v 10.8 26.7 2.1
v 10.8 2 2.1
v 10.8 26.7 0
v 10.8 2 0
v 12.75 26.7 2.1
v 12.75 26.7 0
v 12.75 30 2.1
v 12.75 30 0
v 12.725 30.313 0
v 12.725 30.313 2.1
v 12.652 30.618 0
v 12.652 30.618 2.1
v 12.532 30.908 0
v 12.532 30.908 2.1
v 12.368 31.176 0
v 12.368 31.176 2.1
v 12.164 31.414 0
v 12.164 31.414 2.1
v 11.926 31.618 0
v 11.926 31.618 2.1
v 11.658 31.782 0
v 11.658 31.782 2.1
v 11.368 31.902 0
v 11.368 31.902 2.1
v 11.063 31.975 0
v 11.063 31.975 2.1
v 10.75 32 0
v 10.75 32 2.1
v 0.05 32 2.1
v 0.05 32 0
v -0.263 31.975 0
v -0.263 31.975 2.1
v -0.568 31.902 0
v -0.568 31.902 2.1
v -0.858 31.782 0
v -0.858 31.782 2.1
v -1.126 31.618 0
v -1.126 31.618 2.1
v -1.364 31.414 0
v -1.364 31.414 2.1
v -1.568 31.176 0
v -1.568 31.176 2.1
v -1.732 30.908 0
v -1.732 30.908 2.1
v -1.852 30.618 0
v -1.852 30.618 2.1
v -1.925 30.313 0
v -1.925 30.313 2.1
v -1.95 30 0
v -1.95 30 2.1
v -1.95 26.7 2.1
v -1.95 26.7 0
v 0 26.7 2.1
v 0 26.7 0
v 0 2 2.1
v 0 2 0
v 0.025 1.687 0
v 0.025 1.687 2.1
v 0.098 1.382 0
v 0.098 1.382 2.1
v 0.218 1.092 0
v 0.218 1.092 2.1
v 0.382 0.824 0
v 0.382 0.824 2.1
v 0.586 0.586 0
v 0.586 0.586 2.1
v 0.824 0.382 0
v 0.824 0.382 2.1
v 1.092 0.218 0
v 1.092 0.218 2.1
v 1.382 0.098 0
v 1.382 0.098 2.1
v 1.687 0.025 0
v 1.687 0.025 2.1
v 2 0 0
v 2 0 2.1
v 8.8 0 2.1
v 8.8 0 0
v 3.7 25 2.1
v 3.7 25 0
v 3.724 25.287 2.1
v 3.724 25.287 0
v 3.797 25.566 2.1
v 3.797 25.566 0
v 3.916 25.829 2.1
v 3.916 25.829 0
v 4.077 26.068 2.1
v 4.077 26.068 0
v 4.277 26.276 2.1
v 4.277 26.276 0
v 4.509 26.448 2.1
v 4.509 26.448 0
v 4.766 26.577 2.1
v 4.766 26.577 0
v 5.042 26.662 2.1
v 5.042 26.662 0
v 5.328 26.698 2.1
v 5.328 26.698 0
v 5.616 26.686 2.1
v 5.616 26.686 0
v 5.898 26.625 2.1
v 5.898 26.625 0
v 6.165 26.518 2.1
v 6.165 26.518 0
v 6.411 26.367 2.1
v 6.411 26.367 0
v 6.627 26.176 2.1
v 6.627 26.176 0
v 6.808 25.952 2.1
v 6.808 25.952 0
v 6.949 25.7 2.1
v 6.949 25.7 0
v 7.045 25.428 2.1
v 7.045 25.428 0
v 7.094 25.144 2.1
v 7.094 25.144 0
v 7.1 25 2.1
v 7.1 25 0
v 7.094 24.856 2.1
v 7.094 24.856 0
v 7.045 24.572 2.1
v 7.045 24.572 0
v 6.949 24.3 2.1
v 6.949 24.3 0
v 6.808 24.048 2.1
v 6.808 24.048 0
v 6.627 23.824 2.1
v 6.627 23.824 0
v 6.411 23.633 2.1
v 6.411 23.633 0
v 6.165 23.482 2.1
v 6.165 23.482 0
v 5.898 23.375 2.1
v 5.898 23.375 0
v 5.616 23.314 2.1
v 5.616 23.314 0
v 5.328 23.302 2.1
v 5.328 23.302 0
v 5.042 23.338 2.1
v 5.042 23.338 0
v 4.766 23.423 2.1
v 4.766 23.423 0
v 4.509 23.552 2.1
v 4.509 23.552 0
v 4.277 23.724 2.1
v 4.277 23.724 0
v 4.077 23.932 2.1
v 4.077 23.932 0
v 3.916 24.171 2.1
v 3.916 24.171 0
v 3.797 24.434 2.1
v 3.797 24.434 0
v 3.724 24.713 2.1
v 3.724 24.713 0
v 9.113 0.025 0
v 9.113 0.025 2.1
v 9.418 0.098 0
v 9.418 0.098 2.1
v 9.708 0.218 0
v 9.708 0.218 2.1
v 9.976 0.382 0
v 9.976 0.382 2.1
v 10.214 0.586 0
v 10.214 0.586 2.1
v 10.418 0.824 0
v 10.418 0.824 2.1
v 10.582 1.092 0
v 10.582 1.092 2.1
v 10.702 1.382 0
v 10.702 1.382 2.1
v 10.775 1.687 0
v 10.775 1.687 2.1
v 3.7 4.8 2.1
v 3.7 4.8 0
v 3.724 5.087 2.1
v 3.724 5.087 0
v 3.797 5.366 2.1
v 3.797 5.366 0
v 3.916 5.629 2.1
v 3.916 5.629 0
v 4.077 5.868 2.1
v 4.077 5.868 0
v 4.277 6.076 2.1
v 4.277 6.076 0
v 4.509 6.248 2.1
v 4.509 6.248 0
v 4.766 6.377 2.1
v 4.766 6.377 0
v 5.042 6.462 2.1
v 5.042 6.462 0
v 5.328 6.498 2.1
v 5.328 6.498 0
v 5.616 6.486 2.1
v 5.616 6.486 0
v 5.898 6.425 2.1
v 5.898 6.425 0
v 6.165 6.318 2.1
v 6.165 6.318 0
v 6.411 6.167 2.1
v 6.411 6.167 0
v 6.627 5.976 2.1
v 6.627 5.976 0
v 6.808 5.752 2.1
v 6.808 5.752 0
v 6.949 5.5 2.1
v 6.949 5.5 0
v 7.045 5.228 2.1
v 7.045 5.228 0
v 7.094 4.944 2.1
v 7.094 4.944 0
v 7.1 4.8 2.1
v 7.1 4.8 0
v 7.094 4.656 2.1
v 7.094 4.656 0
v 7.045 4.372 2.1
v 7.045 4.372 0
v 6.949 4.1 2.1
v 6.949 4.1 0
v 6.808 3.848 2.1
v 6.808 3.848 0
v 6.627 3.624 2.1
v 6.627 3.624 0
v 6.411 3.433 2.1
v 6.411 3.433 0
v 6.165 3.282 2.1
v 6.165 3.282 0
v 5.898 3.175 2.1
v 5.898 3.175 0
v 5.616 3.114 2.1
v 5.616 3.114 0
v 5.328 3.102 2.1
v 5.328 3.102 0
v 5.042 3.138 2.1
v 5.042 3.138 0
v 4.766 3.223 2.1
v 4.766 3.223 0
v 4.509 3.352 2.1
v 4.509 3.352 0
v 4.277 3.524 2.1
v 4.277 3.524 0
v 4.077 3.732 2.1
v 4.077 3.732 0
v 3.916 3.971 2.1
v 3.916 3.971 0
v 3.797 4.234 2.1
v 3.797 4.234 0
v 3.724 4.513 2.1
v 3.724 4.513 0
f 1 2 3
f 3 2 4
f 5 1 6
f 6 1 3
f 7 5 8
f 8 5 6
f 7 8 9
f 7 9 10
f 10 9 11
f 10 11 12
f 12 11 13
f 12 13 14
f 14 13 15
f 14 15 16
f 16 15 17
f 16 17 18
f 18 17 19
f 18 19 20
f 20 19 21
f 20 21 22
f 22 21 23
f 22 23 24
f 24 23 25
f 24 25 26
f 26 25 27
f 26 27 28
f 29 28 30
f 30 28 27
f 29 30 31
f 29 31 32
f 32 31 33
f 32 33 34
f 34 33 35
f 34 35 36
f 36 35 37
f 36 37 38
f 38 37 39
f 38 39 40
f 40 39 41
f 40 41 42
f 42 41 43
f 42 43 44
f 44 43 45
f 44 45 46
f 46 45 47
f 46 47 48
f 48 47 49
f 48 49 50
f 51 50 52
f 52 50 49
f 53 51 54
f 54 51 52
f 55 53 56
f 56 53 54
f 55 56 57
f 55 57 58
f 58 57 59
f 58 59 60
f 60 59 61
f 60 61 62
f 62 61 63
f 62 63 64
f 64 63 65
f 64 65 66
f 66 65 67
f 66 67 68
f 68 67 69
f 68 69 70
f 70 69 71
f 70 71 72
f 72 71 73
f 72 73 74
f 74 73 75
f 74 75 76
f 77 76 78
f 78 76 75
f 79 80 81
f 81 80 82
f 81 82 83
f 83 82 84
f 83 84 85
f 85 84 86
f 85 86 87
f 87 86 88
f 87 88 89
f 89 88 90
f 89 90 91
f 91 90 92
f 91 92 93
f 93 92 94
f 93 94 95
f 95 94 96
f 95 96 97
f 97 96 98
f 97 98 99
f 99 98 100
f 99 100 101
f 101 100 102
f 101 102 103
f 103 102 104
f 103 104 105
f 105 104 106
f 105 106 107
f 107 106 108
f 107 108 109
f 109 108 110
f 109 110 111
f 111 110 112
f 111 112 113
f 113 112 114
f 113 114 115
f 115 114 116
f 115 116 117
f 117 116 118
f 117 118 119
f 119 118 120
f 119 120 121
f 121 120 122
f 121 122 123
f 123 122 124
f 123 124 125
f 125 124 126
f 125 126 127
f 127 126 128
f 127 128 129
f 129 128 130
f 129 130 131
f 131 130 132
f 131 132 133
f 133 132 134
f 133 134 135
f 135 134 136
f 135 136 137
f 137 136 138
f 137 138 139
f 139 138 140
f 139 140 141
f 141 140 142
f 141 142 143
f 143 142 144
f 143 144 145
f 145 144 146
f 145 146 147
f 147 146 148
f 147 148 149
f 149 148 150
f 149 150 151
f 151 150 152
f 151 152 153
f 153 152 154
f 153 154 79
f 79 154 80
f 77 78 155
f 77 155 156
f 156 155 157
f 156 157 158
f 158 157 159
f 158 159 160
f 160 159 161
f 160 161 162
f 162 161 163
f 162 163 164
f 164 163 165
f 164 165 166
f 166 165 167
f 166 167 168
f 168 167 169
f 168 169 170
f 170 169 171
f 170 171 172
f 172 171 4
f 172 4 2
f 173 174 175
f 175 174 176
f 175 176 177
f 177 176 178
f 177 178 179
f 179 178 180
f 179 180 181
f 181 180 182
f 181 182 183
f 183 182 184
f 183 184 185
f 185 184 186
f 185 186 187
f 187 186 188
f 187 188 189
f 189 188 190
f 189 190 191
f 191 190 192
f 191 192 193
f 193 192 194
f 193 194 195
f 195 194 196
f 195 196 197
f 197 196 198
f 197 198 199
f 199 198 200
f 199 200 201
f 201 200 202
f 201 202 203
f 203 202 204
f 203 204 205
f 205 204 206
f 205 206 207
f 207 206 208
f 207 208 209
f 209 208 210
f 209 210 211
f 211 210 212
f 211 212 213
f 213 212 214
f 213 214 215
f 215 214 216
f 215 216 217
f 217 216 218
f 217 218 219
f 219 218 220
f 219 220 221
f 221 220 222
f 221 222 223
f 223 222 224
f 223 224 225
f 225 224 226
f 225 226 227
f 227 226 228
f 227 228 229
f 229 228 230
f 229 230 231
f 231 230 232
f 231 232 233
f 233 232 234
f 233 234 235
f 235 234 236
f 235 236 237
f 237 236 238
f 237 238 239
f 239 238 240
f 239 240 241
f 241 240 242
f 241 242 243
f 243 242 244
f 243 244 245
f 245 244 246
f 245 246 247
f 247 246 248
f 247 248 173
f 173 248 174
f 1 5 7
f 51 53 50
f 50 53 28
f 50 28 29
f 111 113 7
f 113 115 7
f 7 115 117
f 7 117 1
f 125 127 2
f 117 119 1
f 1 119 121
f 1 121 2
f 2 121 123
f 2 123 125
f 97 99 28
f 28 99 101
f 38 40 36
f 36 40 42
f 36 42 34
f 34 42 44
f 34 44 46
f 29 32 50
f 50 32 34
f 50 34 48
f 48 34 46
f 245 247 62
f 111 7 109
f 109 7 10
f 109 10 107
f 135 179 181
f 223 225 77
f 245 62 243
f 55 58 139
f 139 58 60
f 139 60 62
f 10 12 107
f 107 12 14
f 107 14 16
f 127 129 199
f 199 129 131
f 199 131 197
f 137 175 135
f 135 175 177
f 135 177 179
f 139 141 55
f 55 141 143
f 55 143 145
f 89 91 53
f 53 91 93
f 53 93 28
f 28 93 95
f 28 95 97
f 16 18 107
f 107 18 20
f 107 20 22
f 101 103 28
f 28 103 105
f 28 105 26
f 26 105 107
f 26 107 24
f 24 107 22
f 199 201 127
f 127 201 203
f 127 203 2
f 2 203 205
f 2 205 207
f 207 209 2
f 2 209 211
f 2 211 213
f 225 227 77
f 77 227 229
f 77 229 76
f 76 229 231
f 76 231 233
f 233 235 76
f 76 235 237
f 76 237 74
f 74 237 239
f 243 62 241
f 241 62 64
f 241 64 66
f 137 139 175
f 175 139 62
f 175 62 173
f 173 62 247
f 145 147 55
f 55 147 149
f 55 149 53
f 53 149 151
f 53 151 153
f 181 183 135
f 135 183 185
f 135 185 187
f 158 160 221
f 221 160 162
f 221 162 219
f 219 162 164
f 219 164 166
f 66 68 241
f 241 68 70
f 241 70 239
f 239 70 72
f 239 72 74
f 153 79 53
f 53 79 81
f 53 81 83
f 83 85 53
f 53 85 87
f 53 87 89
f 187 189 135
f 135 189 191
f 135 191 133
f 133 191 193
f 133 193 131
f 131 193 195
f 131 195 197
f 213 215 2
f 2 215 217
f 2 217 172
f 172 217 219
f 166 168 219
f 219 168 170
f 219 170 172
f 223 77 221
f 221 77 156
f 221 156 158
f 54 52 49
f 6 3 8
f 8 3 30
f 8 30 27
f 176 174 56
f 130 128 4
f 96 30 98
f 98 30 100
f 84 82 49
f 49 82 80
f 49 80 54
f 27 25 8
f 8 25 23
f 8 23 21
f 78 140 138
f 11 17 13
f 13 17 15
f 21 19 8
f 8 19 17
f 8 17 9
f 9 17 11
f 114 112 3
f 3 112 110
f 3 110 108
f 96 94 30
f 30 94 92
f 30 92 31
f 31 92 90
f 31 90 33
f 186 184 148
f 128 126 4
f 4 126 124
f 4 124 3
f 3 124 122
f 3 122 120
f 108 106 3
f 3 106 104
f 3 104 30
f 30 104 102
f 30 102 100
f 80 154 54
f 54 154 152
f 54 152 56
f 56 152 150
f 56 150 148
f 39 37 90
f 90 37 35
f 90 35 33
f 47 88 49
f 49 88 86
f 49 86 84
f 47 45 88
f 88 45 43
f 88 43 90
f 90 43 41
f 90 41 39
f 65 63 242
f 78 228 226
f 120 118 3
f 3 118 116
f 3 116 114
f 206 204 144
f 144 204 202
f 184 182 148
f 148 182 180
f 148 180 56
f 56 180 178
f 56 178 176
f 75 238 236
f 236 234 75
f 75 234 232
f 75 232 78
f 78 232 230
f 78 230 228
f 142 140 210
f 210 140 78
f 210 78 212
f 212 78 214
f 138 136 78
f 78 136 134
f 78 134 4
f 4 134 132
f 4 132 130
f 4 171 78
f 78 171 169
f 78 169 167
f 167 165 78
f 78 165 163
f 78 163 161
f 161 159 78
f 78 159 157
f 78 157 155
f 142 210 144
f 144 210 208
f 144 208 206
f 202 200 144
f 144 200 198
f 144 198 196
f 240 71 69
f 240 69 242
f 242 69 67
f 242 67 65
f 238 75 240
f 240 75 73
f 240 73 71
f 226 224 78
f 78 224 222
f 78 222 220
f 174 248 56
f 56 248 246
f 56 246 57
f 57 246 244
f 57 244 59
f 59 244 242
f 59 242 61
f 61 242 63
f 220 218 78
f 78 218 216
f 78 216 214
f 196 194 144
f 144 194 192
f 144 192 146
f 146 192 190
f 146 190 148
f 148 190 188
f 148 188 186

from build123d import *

# Parameters (mm, degrees)
SKETCH1_R           = 1.7
BOSS_EXTRUDE1_DEPTH = 2.1


with BuildPart() as part:
    # Sketch1 → Boss-Extrude1 (new body)
    with BuildSketch(Plane.XY):
        with BuildLine():
            ThreePointArc((0, 2), (0.585786438, 0.585786438), (2, 0))
            Line((2, 0), (8.8, 0))
            ThreePointArc((8.8, 0), (10.214213562, 0.585786438), (10.8, 2))
            Line((10.8, 2), (10.8, 26.7))
            Line((10.8, 26.7), (12.75, 26.7))
            Line((12.75, 26.7), (12.75, 30))
            ThreePointArc((12.75, 30), (12.164213562, 31.414213562), (10.75, 32))
            Line((10.75, 32), (0.05, 32))
            ThreePointArc((0.05, 32), (-1.364213562, 31.414213562), (-1.95, 30))
            Line((-1.95, 30), (-1.95, 26.7))
            Line((-1.95, 26.7), (0, 26.7))
            Line((0, 26.7), (0, 2))
        make_face()
        with Locations((5.4, 4.8)):
            Circle(SKETCH1_R, mode=Mode.SUBTRACT)
        with Locations((5.4, 25)):
            Circle(SKETCH1_R, mode=Mode.SUBTRACT)
    extrude(amount=BOSS_EXTRUDE1_DEPTH)


solid = part.part
